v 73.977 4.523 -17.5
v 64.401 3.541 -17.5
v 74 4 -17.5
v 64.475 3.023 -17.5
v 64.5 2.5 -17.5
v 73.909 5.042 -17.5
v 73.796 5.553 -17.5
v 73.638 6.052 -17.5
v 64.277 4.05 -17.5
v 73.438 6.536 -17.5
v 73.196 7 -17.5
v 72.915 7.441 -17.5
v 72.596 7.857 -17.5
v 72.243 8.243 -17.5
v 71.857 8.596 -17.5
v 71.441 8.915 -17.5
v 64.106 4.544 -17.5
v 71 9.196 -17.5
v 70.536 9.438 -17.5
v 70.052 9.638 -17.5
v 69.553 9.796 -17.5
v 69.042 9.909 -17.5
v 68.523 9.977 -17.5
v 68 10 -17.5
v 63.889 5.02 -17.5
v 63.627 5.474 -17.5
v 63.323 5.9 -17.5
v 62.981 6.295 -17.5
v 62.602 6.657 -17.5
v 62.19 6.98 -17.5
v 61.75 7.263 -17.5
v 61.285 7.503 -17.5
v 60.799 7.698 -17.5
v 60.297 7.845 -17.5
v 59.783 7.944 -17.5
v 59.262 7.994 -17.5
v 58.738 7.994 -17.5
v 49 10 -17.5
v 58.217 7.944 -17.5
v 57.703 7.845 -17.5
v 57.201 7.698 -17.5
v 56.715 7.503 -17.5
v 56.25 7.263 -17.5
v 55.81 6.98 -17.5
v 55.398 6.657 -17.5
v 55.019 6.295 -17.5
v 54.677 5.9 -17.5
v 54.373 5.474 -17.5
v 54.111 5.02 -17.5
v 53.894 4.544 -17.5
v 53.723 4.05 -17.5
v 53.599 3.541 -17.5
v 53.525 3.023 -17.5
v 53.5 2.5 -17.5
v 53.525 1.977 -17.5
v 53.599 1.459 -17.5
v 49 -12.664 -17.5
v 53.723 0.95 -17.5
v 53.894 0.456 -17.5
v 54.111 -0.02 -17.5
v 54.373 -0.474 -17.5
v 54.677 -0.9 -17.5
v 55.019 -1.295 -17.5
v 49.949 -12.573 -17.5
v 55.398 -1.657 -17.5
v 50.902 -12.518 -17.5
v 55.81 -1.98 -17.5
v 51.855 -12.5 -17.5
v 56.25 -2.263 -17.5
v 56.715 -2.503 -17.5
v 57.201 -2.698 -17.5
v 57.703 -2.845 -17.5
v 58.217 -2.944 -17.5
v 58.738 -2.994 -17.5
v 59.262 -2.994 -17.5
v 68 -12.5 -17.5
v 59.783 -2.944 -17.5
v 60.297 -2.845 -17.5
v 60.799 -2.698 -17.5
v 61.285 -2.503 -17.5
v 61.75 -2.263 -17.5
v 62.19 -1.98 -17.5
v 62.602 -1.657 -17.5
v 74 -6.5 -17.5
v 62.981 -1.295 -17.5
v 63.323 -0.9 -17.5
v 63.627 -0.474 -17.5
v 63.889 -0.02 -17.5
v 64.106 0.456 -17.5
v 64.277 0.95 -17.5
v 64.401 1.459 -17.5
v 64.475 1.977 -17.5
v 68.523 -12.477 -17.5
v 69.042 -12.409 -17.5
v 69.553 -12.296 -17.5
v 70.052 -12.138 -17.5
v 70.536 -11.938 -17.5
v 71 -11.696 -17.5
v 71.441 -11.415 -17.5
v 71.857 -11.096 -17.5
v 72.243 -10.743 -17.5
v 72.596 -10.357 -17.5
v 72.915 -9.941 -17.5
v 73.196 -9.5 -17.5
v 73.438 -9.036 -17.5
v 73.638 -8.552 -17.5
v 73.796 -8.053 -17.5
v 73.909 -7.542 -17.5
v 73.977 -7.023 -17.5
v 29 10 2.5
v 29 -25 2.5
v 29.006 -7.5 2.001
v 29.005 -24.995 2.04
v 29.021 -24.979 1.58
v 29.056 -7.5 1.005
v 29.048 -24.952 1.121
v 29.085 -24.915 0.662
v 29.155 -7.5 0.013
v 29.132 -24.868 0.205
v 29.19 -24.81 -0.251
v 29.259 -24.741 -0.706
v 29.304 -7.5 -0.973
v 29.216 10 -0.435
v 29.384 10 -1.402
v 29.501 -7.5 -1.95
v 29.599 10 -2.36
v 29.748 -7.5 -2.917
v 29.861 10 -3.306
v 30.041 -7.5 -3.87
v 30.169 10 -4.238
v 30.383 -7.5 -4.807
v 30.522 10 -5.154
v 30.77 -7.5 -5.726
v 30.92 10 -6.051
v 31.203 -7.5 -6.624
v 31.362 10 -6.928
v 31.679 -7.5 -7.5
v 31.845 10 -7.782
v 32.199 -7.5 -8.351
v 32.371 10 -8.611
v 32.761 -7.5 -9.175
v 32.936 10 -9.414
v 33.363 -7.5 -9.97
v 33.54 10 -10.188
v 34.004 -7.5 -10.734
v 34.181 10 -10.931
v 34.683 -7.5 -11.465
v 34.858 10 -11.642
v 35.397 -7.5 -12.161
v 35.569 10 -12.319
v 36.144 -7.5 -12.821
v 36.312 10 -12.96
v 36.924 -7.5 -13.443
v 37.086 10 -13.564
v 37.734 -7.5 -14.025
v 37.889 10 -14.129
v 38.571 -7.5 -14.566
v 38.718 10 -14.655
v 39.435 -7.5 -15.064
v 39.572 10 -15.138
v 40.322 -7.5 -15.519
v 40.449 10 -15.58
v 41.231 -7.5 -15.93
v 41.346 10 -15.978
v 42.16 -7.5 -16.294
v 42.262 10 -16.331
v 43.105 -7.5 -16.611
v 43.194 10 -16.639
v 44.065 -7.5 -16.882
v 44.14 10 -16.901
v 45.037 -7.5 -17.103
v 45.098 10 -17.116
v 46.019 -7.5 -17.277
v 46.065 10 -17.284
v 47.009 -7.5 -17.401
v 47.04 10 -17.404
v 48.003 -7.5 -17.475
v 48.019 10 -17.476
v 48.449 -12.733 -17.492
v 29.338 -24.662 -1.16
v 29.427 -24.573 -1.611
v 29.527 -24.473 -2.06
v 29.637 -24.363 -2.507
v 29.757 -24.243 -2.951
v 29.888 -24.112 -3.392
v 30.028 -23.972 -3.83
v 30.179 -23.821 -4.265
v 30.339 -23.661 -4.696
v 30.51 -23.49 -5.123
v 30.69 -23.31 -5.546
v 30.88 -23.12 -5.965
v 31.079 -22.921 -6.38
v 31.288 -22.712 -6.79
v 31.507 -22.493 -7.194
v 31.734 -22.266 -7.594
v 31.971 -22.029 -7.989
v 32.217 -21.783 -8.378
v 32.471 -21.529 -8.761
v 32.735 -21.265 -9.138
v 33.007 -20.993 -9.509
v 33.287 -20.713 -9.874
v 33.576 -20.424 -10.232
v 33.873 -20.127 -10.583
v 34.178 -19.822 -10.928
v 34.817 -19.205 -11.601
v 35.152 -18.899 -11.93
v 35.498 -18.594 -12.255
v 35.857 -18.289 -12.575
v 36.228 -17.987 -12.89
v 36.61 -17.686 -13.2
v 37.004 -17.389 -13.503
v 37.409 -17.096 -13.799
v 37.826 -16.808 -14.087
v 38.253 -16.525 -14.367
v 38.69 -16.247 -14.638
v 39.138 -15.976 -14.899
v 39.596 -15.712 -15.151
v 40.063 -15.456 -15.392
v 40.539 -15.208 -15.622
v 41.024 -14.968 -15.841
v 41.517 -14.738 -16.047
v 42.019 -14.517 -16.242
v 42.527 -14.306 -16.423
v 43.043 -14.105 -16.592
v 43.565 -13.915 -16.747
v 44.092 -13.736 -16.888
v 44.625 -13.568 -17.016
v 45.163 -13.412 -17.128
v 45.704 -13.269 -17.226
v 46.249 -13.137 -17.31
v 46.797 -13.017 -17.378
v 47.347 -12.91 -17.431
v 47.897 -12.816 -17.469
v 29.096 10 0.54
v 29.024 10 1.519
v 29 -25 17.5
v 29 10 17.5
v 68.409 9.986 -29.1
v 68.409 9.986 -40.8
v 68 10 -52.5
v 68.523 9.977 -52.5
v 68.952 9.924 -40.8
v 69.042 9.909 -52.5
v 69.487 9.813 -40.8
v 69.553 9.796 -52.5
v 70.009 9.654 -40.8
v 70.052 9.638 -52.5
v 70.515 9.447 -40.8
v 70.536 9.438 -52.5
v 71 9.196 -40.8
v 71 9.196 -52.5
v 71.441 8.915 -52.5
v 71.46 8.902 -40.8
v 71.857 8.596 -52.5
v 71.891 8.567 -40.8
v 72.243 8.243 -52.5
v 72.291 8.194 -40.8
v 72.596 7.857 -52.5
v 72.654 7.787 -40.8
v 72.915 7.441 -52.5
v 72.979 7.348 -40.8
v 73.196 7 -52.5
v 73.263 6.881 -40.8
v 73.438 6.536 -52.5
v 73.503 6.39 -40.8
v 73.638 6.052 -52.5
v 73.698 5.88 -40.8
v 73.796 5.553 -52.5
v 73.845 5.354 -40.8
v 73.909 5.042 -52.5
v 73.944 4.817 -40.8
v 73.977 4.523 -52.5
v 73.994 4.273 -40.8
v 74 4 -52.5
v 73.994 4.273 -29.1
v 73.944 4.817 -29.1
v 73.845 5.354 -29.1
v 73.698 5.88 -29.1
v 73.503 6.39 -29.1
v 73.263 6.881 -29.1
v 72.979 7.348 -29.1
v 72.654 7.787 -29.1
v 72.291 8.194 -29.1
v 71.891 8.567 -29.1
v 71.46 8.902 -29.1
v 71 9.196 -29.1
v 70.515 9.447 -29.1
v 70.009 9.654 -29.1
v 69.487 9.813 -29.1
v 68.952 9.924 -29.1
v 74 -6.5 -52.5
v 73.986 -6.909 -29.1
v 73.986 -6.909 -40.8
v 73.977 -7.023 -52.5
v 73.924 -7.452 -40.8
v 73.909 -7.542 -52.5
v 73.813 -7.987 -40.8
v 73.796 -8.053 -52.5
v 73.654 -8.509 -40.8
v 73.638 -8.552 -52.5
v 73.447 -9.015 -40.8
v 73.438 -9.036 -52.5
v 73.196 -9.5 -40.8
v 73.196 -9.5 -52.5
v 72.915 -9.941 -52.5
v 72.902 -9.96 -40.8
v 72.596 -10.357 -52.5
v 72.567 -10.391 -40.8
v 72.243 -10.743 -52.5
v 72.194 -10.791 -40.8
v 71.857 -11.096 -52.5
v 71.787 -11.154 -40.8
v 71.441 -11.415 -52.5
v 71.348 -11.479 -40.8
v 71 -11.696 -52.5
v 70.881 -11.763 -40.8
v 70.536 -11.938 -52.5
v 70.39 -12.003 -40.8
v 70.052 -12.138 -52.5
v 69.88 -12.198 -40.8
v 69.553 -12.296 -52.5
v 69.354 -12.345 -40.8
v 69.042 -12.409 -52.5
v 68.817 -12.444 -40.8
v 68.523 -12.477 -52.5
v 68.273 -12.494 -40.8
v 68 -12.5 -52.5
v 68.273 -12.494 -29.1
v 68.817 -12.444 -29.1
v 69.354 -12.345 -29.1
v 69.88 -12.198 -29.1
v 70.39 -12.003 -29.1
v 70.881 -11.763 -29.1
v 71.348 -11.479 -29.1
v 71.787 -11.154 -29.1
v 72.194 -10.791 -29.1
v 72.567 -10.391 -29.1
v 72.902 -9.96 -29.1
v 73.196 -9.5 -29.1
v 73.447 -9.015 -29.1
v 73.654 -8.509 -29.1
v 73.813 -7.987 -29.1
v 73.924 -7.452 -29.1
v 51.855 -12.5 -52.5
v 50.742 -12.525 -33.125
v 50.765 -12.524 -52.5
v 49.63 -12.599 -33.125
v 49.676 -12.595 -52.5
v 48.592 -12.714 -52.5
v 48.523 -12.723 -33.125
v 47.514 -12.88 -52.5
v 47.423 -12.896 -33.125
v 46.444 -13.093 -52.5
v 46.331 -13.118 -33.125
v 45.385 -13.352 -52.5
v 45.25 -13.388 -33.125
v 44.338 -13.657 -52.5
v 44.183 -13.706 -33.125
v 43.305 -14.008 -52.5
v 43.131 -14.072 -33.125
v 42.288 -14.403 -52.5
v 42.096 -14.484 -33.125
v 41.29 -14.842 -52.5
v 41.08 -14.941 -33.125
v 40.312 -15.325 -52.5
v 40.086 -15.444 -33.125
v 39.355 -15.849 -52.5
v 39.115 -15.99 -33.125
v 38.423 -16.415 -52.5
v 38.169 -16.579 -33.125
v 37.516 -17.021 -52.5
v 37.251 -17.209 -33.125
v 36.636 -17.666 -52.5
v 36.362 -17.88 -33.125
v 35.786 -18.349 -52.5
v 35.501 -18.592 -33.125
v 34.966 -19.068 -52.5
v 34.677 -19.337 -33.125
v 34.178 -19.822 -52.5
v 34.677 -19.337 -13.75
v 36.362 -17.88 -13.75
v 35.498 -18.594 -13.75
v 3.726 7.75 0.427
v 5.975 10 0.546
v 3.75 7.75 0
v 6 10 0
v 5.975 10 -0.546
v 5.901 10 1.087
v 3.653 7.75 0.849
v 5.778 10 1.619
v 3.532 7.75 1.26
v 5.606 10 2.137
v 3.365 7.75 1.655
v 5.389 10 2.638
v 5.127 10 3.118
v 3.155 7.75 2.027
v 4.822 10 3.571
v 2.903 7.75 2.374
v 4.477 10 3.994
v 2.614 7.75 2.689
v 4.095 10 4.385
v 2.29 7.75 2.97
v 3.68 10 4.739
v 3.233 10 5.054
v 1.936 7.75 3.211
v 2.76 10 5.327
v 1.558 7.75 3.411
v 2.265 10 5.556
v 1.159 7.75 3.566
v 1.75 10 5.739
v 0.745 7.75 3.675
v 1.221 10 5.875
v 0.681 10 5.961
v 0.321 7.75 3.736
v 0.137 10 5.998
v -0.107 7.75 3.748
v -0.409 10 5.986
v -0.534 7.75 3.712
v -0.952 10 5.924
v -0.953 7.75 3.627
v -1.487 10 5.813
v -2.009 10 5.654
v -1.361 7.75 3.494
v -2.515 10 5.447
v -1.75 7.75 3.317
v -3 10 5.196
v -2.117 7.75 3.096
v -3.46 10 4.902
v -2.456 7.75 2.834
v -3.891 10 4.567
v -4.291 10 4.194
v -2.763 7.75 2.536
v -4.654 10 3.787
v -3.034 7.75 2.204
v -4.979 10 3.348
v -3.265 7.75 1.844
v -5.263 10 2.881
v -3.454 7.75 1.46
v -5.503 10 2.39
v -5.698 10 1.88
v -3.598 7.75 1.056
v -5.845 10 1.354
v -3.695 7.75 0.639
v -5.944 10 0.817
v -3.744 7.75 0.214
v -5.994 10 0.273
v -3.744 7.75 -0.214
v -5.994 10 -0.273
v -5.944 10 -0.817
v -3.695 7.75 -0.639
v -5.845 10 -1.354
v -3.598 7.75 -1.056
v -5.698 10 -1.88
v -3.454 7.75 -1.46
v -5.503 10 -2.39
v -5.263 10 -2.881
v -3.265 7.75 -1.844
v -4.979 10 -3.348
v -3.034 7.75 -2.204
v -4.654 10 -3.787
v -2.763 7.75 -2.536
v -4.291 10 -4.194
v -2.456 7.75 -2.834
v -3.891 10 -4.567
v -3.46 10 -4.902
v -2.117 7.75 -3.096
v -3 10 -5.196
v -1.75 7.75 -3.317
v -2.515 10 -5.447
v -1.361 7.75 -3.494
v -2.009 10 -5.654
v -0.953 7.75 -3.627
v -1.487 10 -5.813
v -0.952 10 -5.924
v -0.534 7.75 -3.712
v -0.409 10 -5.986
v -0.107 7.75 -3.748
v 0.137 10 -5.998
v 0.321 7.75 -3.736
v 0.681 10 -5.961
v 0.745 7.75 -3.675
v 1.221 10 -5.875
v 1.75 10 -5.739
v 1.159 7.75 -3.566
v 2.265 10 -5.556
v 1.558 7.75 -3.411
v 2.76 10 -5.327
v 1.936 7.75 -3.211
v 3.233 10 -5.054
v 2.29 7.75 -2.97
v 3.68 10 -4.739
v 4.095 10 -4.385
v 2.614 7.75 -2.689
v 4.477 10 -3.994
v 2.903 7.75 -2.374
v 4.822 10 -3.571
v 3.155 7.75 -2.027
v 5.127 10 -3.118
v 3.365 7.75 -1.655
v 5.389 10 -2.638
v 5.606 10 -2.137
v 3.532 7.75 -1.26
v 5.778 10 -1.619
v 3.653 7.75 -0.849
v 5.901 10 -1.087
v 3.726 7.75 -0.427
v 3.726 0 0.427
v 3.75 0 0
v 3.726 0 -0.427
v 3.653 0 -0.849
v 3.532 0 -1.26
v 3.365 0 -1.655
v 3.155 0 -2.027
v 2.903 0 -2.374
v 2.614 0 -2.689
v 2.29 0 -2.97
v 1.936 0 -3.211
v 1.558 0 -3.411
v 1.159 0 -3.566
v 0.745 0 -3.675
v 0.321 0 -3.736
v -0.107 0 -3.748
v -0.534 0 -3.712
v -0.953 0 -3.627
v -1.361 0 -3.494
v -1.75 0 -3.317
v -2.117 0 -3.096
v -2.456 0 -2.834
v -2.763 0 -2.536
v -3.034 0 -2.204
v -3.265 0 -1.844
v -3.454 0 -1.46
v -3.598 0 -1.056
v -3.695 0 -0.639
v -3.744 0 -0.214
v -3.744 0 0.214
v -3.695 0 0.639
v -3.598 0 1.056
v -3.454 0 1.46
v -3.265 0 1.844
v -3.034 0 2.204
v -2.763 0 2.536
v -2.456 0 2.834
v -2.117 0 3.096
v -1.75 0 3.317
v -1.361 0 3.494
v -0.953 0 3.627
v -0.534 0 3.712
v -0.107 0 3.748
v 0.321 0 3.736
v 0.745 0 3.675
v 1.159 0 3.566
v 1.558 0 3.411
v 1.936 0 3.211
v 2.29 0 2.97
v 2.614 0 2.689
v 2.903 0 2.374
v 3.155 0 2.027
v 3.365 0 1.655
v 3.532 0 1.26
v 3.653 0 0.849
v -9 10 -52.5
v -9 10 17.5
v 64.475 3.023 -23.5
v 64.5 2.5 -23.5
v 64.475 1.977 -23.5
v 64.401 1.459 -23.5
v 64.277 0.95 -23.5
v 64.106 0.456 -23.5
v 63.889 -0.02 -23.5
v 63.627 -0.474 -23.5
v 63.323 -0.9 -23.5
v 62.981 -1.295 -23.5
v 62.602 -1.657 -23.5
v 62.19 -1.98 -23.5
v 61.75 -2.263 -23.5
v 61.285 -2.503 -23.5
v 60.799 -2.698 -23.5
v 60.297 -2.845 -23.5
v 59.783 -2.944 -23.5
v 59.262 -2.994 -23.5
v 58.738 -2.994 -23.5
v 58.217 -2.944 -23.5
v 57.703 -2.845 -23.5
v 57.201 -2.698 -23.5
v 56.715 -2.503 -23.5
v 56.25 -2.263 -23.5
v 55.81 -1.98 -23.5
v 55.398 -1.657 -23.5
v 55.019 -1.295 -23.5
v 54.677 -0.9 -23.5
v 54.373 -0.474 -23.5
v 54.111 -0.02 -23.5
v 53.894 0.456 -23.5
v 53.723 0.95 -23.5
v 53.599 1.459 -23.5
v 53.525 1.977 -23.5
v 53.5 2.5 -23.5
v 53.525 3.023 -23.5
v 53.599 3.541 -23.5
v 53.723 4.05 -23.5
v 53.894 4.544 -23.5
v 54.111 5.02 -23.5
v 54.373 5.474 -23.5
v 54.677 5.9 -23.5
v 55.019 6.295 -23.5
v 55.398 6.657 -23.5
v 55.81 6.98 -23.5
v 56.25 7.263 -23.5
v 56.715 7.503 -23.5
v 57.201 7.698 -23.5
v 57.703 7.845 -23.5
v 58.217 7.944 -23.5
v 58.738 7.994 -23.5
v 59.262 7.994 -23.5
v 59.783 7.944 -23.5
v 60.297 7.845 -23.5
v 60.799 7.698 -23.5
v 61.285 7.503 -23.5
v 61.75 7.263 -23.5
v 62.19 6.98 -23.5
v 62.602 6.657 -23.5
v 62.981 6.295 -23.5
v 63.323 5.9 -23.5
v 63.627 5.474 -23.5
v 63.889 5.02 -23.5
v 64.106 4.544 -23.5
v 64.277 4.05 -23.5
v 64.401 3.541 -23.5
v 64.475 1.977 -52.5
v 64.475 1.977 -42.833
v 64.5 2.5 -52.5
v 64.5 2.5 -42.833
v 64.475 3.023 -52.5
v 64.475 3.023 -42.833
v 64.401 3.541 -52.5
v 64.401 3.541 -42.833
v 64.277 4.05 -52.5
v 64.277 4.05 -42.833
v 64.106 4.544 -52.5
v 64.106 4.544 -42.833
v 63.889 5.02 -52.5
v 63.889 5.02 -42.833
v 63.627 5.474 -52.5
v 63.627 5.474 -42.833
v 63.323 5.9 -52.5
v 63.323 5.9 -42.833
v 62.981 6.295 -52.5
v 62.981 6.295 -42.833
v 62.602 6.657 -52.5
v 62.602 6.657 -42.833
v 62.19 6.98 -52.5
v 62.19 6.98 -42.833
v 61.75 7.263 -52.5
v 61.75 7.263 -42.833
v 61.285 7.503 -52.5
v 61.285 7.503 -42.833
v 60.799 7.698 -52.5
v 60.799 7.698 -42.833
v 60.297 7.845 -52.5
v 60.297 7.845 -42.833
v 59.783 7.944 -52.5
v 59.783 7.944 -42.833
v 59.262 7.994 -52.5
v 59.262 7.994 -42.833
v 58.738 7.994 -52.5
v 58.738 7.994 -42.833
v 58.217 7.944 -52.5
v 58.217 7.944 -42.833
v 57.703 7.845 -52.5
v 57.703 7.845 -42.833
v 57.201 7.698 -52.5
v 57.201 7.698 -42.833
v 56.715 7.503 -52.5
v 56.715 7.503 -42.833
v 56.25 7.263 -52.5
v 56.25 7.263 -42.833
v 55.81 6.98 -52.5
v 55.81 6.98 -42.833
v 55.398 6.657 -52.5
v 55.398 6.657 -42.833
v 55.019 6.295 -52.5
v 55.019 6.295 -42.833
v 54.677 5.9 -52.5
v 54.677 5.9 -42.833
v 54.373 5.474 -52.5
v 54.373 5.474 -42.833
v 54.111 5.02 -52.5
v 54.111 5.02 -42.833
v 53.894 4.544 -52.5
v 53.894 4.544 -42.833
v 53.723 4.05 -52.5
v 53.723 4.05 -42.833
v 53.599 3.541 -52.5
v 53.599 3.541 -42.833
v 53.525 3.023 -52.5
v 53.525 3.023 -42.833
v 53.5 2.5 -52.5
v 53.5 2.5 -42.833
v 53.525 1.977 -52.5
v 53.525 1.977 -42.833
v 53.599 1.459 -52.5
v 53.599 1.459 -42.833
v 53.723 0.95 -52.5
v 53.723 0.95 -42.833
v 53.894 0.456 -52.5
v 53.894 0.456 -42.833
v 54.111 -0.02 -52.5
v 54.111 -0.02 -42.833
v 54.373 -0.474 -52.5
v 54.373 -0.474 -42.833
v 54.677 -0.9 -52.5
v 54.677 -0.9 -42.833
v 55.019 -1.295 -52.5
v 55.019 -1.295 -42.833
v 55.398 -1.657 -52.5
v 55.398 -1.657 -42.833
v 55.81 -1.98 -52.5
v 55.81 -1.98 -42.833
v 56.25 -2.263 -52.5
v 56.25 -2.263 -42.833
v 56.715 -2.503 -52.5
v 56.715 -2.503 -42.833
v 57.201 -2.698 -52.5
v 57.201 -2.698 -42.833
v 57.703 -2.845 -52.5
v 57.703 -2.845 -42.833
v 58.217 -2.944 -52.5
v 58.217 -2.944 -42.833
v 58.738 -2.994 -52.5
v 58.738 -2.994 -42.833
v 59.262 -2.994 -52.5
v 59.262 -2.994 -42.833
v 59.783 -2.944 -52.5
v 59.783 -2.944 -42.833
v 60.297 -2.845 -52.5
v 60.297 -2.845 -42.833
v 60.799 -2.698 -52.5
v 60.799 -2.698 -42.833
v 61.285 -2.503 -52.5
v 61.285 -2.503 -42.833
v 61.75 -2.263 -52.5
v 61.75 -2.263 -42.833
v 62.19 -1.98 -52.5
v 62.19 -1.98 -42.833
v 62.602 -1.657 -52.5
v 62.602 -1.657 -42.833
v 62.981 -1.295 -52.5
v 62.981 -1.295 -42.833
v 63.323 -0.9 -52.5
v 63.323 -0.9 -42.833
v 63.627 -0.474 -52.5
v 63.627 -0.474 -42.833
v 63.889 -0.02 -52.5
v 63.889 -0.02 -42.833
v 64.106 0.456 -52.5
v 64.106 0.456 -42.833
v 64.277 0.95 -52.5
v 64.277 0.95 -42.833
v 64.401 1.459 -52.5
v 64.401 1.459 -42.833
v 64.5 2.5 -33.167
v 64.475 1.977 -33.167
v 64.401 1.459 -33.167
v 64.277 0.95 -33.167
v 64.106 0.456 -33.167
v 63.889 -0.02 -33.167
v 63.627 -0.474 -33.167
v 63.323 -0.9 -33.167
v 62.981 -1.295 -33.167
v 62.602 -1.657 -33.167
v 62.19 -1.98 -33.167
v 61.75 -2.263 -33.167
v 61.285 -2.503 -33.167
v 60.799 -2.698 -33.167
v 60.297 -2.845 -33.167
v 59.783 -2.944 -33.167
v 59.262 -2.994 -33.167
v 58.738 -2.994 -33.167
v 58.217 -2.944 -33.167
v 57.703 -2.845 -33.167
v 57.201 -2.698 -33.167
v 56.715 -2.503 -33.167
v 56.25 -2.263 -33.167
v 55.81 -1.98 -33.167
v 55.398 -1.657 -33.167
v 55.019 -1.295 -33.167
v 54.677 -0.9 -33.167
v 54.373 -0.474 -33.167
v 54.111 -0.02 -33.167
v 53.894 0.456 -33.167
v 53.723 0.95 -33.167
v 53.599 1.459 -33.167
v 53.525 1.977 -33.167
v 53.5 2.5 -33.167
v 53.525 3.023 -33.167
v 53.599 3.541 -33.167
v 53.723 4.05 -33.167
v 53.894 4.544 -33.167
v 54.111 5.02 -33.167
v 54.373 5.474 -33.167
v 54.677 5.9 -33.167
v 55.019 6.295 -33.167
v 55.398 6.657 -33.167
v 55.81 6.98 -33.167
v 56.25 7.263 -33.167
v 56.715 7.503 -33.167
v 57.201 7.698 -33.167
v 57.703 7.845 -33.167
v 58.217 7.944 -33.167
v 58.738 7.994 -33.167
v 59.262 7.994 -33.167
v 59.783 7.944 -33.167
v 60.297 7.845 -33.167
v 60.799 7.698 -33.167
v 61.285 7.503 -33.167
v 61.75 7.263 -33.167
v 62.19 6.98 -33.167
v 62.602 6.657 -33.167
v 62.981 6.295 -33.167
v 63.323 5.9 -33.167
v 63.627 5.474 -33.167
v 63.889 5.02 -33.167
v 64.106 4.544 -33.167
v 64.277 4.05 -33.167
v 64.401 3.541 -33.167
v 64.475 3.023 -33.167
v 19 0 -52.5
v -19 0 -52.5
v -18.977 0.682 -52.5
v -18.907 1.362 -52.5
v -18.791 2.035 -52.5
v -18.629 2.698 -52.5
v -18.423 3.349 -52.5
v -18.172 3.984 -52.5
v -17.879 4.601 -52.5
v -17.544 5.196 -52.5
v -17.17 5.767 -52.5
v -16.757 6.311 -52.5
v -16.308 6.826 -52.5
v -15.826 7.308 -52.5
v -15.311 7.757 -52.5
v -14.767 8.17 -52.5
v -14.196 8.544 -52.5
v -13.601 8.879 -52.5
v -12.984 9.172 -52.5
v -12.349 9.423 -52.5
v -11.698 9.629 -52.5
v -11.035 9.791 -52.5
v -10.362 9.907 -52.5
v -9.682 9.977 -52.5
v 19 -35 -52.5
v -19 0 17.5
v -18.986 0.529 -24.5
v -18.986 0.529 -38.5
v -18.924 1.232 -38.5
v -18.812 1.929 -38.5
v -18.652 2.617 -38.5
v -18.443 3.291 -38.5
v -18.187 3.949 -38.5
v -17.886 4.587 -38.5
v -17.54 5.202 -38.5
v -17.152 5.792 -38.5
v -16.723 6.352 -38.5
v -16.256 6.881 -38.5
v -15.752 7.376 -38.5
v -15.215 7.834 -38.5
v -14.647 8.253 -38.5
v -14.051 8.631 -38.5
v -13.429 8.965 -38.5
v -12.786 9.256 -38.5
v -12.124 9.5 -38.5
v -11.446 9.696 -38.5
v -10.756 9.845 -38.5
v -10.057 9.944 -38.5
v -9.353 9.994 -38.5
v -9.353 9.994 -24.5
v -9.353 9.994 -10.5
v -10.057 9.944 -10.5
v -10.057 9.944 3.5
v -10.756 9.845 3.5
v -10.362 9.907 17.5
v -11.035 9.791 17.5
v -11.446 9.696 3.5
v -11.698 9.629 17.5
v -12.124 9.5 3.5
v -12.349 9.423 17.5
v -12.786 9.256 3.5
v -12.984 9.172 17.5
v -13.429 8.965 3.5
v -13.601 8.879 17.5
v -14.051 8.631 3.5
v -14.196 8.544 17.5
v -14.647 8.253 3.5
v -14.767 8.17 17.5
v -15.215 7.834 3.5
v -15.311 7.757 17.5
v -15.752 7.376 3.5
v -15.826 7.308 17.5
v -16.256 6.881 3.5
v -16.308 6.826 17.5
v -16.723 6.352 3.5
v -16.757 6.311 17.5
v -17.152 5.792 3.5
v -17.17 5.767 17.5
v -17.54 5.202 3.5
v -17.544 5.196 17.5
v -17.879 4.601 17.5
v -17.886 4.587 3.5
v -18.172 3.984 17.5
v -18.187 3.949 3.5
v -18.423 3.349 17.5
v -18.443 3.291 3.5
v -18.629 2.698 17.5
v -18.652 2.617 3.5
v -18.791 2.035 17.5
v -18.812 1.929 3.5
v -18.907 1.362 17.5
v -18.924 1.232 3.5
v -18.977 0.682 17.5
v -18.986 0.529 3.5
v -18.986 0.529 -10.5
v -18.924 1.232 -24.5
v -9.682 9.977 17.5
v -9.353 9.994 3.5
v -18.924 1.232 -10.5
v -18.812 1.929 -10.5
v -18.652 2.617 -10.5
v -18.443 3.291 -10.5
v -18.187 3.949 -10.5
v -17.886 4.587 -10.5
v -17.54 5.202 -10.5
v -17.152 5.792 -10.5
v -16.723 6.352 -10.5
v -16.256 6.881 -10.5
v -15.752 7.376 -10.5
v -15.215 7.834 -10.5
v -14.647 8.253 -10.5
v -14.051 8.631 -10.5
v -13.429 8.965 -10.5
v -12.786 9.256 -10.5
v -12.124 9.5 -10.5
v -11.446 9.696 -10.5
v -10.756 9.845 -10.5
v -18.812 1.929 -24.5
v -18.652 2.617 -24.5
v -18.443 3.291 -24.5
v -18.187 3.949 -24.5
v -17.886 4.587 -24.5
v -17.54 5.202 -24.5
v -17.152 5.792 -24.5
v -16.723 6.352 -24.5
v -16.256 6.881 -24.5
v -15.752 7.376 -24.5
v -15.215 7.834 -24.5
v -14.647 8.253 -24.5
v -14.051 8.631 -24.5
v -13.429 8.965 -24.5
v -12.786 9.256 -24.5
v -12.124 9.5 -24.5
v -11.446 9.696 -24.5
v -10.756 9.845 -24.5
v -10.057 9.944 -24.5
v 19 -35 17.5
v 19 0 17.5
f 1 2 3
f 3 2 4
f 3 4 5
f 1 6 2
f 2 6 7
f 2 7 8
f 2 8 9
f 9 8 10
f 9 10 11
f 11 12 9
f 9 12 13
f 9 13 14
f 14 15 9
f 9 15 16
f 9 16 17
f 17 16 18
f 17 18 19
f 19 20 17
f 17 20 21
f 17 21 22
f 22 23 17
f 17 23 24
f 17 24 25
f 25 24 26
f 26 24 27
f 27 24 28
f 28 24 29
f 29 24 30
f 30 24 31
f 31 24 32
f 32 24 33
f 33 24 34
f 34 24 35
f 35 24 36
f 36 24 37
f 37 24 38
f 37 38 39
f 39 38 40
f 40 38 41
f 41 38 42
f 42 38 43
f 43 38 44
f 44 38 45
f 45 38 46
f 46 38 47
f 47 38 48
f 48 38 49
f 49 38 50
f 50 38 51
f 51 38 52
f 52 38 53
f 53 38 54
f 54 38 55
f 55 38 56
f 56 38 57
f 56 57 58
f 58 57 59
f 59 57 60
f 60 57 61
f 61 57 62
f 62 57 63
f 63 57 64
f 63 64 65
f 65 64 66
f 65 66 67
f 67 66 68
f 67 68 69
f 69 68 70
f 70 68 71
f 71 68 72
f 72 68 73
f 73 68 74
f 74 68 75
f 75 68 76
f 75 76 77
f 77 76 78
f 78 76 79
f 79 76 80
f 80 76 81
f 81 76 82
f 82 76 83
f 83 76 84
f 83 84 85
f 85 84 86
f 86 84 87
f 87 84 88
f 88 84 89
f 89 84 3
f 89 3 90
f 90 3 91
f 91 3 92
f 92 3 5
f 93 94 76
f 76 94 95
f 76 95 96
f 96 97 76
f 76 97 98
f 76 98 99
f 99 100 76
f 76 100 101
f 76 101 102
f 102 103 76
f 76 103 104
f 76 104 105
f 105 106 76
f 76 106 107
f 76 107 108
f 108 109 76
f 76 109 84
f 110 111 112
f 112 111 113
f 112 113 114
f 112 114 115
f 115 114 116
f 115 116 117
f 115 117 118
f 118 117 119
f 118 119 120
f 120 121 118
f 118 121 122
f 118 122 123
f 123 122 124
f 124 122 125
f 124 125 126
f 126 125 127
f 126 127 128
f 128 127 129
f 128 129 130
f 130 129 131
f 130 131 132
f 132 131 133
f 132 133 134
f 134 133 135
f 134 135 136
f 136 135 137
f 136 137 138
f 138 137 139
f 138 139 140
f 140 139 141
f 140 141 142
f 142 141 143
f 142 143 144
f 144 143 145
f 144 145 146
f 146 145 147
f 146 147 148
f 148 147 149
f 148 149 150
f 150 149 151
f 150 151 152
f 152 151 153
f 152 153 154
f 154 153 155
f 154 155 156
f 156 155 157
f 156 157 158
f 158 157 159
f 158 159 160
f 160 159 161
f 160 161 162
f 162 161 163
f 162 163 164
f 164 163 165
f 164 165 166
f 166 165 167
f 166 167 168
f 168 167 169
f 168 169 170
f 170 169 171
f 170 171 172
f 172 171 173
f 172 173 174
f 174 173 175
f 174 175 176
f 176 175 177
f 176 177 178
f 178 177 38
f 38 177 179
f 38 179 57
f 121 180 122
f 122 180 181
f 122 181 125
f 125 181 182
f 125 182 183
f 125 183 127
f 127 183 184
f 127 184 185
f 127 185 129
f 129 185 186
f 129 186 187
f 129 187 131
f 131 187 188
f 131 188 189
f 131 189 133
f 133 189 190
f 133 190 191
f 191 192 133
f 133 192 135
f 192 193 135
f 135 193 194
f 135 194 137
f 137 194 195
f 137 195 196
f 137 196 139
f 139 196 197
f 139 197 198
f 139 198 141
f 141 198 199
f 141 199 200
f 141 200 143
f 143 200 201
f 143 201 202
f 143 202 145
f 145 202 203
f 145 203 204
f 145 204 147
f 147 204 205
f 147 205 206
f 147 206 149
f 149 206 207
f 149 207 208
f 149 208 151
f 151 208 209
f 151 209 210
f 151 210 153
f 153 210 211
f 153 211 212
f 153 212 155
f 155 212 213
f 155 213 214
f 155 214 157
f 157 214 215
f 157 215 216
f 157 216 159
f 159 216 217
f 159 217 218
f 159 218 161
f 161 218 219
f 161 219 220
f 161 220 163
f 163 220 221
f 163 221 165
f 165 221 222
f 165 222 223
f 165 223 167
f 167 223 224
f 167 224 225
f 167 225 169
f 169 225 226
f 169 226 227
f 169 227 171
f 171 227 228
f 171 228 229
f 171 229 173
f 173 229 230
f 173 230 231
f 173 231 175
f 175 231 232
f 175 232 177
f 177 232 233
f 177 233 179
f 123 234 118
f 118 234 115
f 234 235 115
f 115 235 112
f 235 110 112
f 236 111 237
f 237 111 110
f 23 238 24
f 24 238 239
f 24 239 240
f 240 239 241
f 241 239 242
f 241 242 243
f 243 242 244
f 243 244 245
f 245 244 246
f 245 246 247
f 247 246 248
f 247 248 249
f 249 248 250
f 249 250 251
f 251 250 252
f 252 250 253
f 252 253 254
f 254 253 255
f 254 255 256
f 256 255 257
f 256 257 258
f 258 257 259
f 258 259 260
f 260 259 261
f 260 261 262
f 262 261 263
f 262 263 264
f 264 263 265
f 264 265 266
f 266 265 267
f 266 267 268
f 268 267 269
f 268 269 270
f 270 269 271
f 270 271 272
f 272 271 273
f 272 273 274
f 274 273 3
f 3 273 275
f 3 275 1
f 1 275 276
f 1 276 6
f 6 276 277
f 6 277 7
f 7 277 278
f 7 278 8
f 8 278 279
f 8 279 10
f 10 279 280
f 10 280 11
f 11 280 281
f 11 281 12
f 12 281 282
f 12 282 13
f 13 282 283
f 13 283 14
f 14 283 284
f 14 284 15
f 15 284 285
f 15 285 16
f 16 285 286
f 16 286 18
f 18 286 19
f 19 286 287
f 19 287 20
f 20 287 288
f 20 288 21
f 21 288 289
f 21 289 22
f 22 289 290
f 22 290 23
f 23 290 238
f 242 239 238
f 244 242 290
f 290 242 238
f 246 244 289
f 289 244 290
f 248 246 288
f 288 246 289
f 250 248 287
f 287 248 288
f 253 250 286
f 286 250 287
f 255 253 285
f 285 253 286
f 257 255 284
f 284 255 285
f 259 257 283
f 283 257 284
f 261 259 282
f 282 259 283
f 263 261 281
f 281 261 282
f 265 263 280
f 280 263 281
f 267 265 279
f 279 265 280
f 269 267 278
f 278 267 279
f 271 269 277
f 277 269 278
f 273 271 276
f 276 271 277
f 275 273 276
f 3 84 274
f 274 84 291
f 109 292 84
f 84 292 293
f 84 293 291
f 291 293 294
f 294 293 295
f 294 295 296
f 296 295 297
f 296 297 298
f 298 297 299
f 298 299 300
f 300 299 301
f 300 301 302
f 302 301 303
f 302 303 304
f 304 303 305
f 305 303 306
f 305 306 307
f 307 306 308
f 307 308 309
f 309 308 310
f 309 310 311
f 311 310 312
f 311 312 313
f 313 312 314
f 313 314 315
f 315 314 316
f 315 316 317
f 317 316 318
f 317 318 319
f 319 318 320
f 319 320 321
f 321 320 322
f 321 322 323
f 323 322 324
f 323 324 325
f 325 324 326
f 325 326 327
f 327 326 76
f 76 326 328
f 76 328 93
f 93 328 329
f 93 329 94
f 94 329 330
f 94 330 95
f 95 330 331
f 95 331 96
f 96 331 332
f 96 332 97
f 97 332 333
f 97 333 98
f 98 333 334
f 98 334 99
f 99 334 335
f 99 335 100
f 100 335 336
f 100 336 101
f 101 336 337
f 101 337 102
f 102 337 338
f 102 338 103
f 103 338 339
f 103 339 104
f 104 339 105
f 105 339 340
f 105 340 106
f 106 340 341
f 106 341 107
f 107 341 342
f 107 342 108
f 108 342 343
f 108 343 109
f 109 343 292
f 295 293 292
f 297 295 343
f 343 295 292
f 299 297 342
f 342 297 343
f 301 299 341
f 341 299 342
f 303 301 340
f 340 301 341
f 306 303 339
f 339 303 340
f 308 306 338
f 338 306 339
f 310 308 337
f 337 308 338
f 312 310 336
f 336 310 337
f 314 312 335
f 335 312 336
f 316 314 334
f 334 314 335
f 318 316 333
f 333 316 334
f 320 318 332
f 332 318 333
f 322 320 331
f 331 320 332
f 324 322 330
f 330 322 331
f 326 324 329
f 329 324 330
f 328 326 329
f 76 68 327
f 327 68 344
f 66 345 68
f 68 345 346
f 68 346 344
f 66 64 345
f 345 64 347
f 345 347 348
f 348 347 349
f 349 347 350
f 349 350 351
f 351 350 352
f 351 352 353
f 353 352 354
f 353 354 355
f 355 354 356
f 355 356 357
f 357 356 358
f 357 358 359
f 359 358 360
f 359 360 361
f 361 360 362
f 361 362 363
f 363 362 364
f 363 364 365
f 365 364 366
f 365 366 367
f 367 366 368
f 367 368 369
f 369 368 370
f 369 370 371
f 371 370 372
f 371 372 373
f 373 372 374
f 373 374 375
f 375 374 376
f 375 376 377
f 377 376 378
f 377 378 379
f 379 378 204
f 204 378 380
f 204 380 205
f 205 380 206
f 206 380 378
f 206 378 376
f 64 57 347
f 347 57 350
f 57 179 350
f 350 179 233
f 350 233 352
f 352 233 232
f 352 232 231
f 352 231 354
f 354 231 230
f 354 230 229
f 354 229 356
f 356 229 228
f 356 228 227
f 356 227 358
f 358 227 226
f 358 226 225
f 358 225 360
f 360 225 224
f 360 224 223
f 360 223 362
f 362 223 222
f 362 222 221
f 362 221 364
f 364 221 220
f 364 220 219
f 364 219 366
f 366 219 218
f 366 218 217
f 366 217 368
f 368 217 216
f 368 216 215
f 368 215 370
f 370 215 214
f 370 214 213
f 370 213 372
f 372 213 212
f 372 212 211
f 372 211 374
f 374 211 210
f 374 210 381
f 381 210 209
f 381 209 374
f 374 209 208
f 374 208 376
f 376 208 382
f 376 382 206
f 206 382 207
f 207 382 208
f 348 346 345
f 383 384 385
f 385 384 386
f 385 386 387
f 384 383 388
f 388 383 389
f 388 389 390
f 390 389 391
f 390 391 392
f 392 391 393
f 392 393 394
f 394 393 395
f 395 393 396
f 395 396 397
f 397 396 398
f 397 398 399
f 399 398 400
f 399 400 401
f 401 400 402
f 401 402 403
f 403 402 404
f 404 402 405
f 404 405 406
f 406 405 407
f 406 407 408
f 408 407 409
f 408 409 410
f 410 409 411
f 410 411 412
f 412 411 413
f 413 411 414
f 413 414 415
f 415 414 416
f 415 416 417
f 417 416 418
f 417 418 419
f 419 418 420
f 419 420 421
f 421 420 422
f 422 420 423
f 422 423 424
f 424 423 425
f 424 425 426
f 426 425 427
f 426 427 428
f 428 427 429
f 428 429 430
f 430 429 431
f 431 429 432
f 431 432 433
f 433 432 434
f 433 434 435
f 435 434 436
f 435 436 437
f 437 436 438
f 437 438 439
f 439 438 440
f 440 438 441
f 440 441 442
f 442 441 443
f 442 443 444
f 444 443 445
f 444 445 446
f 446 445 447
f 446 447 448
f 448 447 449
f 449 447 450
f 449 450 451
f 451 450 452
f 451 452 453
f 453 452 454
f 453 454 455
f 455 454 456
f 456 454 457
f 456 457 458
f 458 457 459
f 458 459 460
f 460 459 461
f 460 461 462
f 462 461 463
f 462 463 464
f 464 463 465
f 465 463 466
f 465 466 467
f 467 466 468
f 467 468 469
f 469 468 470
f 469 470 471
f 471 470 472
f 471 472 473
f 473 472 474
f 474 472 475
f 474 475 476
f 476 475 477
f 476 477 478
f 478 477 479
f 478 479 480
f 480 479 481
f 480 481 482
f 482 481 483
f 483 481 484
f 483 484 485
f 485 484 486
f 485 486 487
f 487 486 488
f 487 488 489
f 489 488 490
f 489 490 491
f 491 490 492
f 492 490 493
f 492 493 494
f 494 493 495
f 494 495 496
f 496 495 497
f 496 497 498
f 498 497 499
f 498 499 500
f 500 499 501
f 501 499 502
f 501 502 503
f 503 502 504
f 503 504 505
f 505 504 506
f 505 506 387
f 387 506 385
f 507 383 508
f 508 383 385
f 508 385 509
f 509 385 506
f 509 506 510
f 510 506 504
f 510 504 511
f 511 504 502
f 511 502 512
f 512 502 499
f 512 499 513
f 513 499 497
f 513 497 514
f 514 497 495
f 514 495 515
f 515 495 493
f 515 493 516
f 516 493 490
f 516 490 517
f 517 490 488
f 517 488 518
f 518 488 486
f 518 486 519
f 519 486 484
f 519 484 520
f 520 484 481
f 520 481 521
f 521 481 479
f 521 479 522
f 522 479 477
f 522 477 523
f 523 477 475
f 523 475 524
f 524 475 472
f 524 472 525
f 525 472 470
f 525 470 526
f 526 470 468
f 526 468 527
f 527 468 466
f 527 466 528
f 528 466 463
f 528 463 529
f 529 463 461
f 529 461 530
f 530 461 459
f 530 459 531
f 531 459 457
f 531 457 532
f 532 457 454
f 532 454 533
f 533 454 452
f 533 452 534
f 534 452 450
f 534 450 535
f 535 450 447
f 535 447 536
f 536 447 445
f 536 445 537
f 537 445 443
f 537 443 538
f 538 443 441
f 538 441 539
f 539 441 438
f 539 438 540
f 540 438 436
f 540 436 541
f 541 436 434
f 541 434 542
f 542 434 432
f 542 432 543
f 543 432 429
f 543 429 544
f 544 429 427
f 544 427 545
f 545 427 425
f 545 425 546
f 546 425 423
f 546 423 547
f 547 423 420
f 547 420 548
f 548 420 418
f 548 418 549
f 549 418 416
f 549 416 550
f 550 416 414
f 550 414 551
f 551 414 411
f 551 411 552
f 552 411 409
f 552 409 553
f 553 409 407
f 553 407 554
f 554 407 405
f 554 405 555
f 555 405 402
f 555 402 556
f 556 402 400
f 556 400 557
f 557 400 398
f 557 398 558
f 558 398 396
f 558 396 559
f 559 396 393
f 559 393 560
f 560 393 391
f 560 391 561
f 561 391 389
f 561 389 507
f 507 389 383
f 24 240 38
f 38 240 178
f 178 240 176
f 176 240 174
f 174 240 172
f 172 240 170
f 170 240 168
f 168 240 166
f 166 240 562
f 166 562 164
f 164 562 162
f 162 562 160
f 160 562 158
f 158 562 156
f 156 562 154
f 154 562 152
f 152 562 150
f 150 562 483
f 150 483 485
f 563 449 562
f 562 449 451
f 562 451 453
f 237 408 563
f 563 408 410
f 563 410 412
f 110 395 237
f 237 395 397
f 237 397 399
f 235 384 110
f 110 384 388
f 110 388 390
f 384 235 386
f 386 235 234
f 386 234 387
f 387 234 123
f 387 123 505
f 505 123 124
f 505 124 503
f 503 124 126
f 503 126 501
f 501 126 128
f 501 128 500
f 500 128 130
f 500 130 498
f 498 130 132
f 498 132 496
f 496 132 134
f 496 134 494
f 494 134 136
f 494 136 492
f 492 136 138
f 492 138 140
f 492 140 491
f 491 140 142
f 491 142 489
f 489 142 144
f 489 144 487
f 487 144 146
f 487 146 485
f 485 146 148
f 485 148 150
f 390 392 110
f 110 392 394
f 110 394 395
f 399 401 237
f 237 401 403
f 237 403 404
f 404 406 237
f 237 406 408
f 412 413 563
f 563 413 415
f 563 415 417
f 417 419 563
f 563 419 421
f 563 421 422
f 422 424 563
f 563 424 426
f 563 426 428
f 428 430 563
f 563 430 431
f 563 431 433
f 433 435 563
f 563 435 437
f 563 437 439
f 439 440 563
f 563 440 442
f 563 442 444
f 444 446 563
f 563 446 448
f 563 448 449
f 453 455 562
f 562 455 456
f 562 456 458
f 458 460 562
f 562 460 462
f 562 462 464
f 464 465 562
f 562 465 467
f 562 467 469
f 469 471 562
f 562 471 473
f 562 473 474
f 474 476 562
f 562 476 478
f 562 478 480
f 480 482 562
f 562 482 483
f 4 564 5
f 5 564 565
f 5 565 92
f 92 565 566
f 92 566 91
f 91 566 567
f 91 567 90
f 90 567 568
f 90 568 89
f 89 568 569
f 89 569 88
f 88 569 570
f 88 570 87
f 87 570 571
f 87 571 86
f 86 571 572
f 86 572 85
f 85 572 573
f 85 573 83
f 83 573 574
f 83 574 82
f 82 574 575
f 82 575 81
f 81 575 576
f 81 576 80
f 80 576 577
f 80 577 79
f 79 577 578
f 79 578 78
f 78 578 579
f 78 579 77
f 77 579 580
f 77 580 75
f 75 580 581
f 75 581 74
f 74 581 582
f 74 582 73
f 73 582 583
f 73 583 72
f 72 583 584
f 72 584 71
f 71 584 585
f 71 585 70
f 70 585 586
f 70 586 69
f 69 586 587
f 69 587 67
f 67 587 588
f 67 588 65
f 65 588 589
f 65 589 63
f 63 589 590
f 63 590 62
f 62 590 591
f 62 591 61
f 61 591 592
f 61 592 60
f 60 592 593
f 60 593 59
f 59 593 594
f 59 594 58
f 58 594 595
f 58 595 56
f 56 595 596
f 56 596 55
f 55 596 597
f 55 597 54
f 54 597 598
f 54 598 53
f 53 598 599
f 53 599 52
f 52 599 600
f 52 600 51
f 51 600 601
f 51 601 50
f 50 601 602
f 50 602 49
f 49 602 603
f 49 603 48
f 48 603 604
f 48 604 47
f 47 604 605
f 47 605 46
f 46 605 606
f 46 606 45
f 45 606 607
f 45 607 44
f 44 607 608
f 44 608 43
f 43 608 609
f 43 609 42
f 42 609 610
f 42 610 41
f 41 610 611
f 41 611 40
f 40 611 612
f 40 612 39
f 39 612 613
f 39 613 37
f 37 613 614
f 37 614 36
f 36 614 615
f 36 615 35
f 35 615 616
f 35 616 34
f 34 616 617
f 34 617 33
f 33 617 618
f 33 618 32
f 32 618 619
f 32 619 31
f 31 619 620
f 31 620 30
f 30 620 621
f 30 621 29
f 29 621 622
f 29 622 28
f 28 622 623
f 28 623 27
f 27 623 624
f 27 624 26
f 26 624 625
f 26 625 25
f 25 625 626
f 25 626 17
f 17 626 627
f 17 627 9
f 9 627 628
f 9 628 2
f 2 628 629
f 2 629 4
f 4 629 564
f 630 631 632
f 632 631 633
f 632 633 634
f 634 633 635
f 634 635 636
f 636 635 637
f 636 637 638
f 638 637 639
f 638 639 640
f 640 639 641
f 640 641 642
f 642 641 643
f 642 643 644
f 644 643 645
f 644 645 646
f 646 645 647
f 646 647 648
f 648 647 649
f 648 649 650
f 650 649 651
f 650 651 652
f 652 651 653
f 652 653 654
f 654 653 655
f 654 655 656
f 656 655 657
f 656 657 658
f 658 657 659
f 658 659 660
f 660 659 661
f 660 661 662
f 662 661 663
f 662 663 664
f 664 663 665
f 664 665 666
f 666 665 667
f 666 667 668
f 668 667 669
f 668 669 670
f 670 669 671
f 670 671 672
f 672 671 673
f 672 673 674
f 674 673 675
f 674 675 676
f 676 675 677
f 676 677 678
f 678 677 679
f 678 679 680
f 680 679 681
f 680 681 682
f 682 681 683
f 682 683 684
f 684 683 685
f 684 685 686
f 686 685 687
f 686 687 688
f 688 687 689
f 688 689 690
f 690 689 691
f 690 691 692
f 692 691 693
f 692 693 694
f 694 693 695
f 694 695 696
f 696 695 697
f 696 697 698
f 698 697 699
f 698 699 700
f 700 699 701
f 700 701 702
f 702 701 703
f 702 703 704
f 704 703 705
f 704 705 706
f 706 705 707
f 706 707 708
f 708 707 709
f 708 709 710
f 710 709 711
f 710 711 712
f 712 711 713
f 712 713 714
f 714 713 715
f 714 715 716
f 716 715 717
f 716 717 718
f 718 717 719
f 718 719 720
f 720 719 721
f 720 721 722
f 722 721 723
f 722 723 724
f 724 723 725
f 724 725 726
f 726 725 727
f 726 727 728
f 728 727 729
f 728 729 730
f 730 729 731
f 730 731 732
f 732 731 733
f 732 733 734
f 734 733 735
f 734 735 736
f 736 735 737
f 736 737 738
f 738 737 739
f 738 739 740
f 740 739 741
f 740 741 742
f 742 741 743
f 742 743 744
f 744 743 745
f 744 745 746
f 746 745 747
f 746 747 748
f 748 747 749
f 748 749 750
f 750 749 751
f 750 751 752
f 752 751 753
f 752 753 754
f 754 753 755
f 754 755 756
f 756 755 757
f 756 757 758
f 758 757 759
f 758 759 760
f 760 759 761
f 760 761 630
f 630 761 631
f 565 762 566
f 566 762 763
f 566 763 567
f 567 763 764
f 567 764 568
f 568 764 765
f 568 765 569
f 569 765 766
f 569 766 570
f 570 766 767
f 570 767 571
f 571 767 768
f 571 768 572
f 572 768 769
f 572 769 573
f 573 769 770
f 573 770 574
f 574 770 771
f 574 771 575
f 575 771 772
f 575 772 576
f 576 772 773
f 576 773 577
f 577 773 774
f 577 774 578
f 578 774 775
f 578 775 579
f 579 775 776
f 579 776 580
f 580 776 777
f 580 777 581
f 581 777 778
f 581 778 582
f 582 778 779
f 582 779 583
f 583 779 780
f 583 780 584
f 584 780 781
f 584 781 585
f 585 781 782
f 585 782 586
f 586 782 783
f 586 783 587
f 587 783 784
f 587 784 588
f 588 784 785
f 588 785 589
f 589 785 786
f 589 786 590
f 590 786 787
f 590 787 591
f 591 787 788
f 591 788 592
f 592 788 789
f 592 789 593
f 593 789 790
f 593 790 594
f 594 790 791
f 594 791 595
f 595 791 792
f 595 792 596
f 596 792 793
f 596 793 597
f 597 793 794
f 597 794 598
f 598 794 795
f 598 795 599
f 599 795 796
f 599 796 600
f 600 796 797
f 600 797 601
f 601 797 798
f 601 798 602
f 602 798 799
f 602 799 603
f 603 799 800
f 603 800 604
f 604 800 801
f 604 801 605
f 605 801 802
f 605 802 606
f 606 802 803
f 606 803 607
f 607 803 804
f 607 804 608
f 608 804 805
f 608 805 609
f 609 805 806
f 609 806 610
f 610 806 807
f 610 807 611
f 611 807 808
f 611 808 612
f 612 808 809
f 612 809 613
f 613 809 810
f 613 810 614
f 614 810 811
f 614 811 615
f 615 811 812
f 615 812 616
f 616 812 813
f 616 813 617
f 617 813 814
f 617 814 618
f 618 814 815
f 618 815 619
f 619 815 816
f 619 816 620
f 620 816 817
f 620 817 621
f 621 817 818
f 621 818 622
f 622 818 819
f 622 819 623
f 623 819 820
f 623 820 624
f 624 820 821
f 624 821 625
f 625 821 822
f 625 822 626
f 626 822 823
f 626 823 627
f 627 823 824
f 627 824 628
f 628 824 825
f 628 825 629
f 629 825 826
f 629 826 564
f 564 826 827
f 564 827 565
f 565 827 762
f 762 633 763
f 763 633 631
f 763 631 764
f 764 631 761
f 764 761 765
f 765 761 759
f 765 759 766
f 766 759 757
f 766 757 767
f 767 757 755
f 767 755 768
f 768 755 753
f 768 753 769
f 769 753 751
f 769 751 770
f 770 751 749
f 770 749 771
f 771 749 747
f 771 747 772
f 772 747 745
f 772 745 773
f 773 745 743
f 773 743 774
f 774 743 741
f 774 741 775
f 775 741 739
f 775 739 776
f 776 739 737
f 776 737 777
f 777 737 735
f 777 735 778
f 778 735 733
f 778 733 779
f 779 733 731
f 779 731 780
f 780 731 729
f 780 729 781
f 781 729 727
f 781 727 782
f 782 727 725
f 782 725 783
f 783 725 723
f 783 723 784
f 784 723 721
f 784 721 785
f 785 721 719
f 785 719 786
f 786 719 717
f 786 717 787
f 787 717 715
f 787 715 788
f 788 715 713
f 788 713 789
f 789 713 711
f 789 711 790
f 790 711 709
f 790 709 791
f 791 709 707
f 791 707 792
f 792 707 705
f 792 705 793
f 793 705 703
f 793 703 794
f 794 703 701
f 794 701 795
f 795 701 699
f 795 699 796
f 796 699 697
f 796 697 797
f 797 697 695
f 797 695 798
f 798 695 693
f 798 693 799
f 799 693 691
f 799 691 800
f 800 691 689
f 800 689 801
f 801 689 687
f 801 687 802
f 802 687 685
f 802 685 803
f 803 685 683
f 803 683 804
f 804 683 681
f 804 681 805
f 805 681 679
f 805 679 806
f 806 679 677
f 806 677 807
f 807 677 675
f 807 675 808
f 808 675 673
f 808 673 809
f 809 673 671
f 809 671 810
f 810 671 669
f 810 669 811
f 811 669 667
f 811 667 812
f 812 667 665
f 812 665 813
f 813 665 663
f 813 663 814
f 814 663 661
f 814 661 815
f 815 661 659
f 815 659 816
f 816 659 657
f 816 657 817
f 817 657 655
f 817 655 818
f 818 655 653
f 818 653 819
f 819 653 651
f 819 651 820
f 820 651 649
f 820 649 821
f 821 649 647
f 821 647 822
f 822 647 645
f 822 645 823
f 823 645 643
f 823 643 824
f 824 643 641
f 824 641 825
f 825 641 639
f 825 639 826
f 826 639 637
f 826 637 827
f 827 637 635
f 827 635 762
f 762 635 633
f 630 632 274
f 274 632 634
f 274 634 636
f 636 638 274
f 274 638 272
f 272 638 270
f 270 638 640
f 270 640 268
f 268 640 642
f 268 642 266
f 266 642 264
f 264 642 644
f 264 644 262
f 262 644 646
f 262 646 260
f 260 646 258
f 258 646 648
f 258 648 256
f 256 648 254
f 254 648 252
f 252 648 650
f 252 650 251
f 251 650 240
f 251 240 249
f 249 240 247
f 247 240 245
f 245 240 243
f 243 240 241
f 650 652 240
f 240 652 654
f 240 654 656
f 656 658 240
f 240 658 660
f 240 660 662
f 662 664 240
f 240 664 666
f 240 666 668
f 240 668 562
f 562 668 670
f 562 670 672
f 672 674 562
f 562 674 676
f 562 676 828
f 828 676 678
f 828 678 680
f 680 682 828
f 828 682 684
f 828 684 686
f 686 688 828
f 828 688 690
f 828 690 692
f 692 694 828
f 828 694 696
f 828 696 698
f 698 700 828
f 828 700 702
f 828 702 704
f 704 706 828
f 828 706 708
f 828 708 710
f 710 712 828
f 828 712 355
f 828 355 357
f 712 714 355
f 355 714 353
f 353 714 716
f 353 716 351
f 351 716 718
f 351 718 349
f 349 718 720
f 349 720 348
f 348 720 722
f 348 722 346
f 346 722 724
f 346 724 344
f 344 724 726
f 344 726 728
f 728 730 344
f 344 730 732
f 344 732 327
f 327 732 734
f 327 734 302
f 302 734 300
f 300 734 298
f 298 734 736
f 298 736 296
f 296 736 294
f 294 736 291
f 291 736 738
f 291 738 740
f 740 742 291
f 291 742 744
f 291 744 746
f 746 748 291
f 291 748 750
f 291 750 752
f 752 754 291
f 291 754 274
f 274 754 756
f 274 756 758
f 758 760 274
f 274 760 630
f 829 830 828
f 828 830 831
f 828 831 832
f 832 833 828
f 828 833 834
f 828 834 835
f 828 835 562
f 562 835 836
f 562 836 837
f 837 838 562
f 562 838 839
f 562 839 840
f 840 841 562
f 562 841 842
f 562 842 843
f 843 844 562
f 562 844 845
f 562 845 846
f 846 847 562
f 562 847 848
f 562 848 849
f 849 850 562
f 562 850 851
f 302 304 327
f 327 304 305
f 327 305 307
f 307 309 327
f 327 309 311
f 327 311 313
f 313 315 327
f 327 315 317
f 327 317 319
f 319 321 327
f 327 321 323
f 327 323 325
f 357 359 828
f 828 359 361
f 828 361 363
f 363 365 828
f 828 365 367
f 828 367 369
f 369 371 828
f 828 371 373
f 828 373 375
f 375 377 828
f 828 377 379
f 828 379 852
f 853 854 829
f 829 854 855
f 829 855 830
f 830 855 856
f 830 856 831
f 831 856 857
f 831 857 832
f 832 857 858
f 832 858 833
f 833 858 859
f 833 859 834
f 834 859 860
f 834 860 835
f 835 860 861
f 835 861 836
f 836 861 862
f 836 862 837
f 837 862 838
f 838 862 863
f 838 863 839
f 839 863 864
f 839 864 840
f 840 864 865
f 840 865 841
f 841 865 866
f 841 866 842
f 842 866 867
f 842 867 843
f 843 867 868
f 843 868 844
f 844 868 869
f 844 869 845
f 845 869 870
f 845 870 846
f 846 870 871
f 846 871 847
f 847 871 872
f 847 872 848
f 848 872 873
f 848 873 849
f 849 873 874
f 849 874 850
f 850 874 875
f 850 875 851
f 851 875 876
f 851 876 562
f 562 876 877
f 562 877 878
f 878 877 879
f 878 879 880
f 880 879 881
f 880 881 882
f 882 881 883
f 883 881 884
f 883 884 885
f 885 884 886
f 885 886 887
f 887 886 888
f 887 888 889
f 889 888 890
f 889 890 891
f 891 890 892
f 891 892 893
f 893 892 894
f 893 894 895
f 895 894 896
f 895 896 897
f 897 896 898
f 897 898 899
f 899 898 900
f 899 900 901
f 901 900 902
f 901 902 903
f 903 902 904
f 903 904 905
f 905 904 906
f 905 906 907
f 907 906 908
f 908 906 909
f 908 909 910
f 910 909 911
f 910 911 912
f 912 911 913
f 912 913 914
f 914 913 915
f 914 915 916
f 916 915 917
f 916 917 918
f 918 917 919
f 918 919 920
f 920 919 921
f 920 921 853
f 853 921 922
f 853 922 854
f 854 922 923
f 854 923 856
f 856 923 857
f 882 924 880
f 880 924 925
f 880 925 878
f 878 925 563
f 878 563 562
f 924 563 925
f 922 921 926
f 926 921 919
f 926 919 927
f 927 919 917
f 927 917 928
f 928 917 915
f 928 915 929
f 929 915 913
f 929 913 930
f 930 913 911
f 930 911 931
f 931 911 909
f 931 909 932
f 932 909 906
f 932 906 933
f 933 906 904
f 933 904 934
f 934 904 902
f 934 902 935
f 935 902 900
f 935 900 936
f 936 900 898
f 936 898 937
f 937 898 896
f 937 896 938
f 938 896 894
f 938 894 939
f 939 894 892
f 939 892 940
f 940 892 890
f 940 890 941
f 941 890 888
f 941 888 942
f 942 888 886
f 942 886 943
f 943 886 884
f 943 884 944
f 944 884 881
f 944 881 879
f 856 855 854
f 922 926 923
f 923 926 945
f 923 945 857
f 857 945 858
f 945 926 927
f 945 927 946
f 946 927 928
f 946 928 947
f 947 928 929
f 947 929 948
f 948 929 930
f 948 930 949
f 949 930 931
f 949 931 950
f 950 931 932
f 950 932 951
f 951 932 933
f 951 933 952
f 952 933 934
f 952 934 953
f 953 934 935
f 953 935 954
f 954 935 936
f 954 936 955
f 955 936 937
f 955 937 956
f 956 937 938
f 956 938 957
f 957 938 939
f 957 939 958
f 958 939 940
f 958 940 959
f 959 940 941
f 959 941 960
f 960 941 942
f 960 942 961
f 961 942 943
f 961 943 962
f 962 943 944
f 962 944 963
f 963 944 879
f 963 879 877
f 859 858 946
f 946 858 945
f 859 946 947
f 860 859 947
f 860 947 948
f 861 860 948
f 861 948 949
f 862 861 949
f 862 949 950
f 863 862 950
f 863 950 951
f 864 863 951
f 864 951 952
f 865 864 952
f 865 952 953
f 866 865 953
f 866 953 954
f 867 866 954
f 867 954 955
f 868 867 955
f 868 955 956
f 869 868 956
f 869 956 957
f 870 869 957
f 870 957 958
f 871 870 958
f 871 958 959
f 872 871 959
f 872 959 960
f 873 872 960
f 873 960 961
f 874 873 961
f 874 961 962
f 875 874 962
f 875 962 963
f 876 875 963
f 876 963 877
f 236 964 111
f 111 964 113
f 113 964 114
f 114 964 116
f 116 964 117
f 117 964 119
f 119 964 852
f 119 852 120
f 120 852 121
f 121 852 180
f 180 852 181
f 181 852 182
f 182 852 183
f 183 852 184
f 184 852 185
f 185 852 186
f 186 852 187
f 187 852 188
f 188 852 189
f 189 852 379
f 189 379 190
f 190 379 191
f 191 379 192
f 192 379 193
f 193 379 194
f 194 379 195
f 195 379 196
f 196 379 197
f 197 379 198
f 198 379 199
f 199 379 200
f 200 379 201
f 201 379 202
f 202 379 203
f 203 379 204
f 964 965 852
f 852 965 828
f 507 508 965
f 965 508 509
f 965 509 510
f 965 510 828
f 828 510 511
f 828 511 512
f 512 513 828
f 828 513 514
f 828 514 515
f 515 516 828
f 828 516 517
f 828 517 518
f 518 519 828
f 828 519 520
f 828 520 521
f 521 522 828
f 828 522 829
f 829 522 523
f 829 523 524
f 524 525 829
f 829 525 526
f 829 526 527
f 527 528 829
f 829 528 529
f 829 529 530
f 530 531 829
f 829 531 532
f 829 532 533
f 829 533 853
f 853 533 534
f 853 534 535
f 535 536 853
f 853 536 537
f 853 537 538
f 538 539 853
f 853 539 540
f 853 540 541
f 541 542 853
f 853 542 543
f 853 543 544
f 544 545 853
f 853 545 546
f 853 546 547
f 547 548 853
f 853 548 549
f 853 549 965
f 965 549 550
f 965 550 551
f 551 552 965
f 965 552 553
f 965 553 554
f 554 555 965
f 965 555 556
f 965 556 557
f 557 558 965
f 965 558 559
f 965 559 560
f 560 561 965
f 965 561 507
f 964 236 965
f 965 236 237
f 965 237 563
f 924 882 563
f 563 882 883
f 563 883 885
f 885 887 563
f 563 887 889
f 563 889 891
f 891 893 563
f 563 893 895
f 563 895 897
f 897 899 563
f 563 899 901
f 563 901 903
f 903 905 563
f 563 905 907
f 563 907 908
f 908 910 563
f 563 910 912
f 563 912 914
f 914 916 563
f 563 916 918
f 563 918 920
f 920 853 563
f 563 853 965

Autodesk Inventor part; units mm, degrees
ref_plane "YZ Plane" through (0, 0, 0) normal (1, 0, 0) x (0, 1, 0)
ref_plane "XZ Plane" through (0, 0, 0) normal (0, 1, 0) x (-1, 0, 0)
ref_plane "XY Plane" through (0, 0, 0) normal (0, 0, 1) x (1, 0, 0)
sketch "Sketch1" plane through (0, 0, 0) normal (0, 0, 1) x (1, 0, 0)
  line L0 (19, 0) -> (-19, 0)
  arc A0 (-9, 10) -> (-19, 0) centre (-9, 0) ccw
  line L1 (-9, 10) -> (68, 10)
  arc A1 (74, 4) -> (68, 10) centre (68, 4) ccw
  line L2 (74, 4) -> (74, -6.5)
  arc A2 (68, -12.5) -> (74, -6.5) centre (68, -6.5) ccw
  line L3 (68, -12.5) -> (51.8553, -12.5)
  arc A3 (51.8553, -12.5) -> (34.1777, -19.8223) centre (51.8553, -37.5) ccw
  line L4 (34.1777, -19.8223) -> (19, -35)
  line L5 (19, -35) -> (19, 0)
  line L6 (19, 0) -> (19, -22.9675) construction
  circle A4 centre (59, 2.5) radius 5.5
  point P0 (0, 0)
  point P1 (0, 0)
  dimension "d0" = 19
  dimension "d5" = 10
  dimension "d6" = 35
  dimension "d7" = 40
  dimension "d8" = 15
  dimension "d9" = 15
  dimension "d12" = 6
  dimension "d13" = 25
  dimension "d14" = 11
  dimension "d15" = 7.5
  dimension "d30" = 19
  dimension "d31" = 45
extrude "Extrusion1" add sketch "Sketch1" along normal blind 17.5 and the other way blind 52.5
sketch "Sketch3" plane through (-9, 10, 17.5) normal (0, 1, 0) x (1, 0, 0)
  circle A0 centre (9, 17.5) radius 3.75
  circle A1 centre (9, 17.5) radius 6
  dimension "d23" = 7.5
  dimension "d24" = 12
extrude "Extrusion3" cut sketch "Sketch3" against normal through all contours A0
chamfer "Chamfer1" distance 2.25 angle 45 1 edges at (-3.75, 10, 0)
sketch "Sketch5" plane through (-9, 10, 17.5) normal (0, 1, 0) x (1, 0, 0)
  line L0 (28, 70) -> (28, 0) projected
  line L1 (83, 70) -> (83, 0) projected
  line L2 (83, 70) -> (83, 0) projected
  line L3 (83, 70) -> (28, 70)
  line L4 (0, 70) -> (77, 70) projected
  line L5 (28, 0) -> (38, 0)
  line L6 (77, 0) -> (0, 0) projected
  line L7 (83, 70) -> (83, 0) projected
  line L8 (83, 35) -> (58, 35)
  arc A0 (58, 35) -> (38, 15) centre (58, 15) ccw
  line L9 (38, 15) -> (38, 0)
  line L10 (38, 0) -> (83, 0)
  point P0 (9, 17.5)
  dimension "d32" = 10
  dimension "d33" = 35
  dimension "d34" = 20
extrude "Extrusion4" cut sketch "Sketch5" against normal through all contours L9 A0 L8 L1 L10 L6
properties part number "kallax-irja-hook"
